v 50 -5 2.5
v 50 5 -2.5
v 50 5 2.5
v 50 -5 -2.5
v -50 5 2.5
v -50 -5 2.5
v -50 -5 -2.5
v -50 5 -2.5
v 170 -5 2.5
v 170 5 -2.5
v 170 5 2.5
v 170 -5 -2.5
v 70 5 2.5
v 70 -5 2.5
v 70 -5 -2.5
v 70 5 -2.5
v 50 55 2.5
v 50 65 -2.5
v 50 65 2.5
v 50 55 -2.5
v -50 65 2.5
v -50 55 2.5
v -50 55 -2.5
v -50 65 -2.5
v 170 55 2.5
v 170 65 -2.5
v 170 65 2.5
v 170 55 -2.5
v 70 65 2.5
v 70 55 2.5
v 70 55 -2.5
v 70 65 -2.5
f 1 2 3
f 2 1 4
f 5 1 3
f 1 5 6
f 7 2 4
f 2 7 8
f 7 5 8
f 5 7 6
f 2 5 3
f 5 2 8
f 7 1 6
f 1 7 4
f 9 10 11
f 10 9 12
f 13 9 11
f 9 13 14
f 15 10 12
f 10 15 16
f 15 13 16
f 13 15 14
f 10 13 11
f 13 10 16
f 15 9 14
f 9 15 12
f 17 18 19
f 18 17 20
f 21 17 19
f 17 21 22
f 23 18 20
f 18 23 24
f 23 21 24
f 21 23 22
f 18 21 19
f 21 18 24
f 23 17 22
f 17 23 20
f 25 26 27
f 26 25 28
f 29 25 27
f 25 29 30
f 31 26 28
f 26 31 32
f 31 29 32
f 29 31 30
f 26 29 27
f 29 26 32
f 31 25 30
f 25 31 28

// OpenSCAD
// Function to create a rectangular prism
module rectangular_prism(length, width, height) {
    cube([length, width, height], center=true);
}

// Adjusted dimensions for the rectangular prisms to match the original model
length = 100;  // Updated length of the prism
width = 10;    // Width of the prism remains the same
height = 5;    // Height of the prism remains the same

// Positions for the four rectangular prisms
translate([0, 0, 0]) rectangular_prism(length, width, height);  // Prism 1
translate([120, 0, 0]) rectangular_prism(length, width, height); // Prism 2
translate([0, 60, 0]) rectangular_prism(length, width, height); // Prism 3
translate([120, 60, 0]) rectangular_prism(length, width, height); // Prism 4
